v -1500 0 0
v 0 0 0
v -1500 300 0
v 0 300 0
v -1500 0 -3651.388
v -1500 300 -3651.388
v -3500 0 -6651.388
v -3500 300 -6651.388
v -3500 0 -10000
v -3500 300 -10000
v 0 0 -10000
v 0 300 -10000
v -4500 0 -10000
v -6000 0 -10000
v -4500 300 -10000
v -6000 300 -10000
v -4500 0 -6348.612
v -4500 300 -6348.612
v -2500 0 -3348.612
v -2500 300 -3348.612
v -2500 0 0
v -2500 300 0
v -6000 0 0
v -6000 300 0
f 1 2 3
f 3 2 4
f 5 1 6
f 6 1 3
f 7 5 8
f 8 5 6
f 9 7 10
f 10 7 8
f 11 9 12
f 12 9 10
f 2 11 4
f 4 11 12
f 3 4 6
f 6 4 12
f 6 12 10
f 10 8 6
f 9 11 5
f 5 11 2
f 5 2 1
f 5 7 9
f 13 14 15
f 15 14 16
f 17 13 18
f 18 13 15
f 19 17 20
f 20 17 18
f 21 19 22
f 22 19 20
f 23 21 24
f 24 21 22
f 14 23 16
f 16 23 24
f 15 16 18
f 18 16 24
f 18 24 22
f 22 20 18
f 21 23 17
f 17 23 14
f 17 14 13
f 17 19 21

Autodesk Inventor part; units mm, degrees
ref_plane "YZ Plane" through (0, 0, 0) normal (1, 0, 0) x (0, 1, 0)
ref_plane "XZ Plane" through (0, 0, 0) normal (0, 1, 0) x (-1, 0, 0)
ref_plane "XY Plane" through (0, 0, 0) normal (0, 0, 1) x (1, 0, 0)
sketch "Sketch1" plane through (0, 0, 0) normal (0, 1, 0) x (-1, 0, 0)
  line L0 (6000, 0) -> (6000, -10000)
  line L1 (0, -10000) -> (0, 0)
  line L2 (2000, 0) -> (2000, -10000) construction
  line L3 (4000, -10000) -> (4000, 0) construction
  line L4 (1500, 0) -> (1500, -3651.3878)
  line L5 (4500, -10000) -> (4500, -6348.6122)
  line L6 (2000, -3500) -> (4000, -6500) construction
  line L7 (2500, -3348.6122) -> (4500, -6348.6122)
  line L8 (1500, -3651.3878) -> (3500, -6651.3878)
  line L9 (2500, 0) -> (2500, -3348.6122)
  line L10 (3500, -10000) -> (3500, -6651.3878)
  line L11 (0, 0) -> (1500, 0)
  line L12 (2500, 0) -> (6000, 0)
  line L13 (6000, -10000) -> (4500, -10000)
  line L14 (3500, -10000) -> (0, -10000)
  dimension "d0" = 6000
  dimension "d1" = 10000
  dimension "d2" = 2000
  dimension "d3" = 2000
  dimension "d4" = 1000
  dimension "d10" = 500
  dimension "d11" = 500
extrude "Extrusion1" add sketch "Sketch1" along normal blind 300
properties part number "wall_2"
